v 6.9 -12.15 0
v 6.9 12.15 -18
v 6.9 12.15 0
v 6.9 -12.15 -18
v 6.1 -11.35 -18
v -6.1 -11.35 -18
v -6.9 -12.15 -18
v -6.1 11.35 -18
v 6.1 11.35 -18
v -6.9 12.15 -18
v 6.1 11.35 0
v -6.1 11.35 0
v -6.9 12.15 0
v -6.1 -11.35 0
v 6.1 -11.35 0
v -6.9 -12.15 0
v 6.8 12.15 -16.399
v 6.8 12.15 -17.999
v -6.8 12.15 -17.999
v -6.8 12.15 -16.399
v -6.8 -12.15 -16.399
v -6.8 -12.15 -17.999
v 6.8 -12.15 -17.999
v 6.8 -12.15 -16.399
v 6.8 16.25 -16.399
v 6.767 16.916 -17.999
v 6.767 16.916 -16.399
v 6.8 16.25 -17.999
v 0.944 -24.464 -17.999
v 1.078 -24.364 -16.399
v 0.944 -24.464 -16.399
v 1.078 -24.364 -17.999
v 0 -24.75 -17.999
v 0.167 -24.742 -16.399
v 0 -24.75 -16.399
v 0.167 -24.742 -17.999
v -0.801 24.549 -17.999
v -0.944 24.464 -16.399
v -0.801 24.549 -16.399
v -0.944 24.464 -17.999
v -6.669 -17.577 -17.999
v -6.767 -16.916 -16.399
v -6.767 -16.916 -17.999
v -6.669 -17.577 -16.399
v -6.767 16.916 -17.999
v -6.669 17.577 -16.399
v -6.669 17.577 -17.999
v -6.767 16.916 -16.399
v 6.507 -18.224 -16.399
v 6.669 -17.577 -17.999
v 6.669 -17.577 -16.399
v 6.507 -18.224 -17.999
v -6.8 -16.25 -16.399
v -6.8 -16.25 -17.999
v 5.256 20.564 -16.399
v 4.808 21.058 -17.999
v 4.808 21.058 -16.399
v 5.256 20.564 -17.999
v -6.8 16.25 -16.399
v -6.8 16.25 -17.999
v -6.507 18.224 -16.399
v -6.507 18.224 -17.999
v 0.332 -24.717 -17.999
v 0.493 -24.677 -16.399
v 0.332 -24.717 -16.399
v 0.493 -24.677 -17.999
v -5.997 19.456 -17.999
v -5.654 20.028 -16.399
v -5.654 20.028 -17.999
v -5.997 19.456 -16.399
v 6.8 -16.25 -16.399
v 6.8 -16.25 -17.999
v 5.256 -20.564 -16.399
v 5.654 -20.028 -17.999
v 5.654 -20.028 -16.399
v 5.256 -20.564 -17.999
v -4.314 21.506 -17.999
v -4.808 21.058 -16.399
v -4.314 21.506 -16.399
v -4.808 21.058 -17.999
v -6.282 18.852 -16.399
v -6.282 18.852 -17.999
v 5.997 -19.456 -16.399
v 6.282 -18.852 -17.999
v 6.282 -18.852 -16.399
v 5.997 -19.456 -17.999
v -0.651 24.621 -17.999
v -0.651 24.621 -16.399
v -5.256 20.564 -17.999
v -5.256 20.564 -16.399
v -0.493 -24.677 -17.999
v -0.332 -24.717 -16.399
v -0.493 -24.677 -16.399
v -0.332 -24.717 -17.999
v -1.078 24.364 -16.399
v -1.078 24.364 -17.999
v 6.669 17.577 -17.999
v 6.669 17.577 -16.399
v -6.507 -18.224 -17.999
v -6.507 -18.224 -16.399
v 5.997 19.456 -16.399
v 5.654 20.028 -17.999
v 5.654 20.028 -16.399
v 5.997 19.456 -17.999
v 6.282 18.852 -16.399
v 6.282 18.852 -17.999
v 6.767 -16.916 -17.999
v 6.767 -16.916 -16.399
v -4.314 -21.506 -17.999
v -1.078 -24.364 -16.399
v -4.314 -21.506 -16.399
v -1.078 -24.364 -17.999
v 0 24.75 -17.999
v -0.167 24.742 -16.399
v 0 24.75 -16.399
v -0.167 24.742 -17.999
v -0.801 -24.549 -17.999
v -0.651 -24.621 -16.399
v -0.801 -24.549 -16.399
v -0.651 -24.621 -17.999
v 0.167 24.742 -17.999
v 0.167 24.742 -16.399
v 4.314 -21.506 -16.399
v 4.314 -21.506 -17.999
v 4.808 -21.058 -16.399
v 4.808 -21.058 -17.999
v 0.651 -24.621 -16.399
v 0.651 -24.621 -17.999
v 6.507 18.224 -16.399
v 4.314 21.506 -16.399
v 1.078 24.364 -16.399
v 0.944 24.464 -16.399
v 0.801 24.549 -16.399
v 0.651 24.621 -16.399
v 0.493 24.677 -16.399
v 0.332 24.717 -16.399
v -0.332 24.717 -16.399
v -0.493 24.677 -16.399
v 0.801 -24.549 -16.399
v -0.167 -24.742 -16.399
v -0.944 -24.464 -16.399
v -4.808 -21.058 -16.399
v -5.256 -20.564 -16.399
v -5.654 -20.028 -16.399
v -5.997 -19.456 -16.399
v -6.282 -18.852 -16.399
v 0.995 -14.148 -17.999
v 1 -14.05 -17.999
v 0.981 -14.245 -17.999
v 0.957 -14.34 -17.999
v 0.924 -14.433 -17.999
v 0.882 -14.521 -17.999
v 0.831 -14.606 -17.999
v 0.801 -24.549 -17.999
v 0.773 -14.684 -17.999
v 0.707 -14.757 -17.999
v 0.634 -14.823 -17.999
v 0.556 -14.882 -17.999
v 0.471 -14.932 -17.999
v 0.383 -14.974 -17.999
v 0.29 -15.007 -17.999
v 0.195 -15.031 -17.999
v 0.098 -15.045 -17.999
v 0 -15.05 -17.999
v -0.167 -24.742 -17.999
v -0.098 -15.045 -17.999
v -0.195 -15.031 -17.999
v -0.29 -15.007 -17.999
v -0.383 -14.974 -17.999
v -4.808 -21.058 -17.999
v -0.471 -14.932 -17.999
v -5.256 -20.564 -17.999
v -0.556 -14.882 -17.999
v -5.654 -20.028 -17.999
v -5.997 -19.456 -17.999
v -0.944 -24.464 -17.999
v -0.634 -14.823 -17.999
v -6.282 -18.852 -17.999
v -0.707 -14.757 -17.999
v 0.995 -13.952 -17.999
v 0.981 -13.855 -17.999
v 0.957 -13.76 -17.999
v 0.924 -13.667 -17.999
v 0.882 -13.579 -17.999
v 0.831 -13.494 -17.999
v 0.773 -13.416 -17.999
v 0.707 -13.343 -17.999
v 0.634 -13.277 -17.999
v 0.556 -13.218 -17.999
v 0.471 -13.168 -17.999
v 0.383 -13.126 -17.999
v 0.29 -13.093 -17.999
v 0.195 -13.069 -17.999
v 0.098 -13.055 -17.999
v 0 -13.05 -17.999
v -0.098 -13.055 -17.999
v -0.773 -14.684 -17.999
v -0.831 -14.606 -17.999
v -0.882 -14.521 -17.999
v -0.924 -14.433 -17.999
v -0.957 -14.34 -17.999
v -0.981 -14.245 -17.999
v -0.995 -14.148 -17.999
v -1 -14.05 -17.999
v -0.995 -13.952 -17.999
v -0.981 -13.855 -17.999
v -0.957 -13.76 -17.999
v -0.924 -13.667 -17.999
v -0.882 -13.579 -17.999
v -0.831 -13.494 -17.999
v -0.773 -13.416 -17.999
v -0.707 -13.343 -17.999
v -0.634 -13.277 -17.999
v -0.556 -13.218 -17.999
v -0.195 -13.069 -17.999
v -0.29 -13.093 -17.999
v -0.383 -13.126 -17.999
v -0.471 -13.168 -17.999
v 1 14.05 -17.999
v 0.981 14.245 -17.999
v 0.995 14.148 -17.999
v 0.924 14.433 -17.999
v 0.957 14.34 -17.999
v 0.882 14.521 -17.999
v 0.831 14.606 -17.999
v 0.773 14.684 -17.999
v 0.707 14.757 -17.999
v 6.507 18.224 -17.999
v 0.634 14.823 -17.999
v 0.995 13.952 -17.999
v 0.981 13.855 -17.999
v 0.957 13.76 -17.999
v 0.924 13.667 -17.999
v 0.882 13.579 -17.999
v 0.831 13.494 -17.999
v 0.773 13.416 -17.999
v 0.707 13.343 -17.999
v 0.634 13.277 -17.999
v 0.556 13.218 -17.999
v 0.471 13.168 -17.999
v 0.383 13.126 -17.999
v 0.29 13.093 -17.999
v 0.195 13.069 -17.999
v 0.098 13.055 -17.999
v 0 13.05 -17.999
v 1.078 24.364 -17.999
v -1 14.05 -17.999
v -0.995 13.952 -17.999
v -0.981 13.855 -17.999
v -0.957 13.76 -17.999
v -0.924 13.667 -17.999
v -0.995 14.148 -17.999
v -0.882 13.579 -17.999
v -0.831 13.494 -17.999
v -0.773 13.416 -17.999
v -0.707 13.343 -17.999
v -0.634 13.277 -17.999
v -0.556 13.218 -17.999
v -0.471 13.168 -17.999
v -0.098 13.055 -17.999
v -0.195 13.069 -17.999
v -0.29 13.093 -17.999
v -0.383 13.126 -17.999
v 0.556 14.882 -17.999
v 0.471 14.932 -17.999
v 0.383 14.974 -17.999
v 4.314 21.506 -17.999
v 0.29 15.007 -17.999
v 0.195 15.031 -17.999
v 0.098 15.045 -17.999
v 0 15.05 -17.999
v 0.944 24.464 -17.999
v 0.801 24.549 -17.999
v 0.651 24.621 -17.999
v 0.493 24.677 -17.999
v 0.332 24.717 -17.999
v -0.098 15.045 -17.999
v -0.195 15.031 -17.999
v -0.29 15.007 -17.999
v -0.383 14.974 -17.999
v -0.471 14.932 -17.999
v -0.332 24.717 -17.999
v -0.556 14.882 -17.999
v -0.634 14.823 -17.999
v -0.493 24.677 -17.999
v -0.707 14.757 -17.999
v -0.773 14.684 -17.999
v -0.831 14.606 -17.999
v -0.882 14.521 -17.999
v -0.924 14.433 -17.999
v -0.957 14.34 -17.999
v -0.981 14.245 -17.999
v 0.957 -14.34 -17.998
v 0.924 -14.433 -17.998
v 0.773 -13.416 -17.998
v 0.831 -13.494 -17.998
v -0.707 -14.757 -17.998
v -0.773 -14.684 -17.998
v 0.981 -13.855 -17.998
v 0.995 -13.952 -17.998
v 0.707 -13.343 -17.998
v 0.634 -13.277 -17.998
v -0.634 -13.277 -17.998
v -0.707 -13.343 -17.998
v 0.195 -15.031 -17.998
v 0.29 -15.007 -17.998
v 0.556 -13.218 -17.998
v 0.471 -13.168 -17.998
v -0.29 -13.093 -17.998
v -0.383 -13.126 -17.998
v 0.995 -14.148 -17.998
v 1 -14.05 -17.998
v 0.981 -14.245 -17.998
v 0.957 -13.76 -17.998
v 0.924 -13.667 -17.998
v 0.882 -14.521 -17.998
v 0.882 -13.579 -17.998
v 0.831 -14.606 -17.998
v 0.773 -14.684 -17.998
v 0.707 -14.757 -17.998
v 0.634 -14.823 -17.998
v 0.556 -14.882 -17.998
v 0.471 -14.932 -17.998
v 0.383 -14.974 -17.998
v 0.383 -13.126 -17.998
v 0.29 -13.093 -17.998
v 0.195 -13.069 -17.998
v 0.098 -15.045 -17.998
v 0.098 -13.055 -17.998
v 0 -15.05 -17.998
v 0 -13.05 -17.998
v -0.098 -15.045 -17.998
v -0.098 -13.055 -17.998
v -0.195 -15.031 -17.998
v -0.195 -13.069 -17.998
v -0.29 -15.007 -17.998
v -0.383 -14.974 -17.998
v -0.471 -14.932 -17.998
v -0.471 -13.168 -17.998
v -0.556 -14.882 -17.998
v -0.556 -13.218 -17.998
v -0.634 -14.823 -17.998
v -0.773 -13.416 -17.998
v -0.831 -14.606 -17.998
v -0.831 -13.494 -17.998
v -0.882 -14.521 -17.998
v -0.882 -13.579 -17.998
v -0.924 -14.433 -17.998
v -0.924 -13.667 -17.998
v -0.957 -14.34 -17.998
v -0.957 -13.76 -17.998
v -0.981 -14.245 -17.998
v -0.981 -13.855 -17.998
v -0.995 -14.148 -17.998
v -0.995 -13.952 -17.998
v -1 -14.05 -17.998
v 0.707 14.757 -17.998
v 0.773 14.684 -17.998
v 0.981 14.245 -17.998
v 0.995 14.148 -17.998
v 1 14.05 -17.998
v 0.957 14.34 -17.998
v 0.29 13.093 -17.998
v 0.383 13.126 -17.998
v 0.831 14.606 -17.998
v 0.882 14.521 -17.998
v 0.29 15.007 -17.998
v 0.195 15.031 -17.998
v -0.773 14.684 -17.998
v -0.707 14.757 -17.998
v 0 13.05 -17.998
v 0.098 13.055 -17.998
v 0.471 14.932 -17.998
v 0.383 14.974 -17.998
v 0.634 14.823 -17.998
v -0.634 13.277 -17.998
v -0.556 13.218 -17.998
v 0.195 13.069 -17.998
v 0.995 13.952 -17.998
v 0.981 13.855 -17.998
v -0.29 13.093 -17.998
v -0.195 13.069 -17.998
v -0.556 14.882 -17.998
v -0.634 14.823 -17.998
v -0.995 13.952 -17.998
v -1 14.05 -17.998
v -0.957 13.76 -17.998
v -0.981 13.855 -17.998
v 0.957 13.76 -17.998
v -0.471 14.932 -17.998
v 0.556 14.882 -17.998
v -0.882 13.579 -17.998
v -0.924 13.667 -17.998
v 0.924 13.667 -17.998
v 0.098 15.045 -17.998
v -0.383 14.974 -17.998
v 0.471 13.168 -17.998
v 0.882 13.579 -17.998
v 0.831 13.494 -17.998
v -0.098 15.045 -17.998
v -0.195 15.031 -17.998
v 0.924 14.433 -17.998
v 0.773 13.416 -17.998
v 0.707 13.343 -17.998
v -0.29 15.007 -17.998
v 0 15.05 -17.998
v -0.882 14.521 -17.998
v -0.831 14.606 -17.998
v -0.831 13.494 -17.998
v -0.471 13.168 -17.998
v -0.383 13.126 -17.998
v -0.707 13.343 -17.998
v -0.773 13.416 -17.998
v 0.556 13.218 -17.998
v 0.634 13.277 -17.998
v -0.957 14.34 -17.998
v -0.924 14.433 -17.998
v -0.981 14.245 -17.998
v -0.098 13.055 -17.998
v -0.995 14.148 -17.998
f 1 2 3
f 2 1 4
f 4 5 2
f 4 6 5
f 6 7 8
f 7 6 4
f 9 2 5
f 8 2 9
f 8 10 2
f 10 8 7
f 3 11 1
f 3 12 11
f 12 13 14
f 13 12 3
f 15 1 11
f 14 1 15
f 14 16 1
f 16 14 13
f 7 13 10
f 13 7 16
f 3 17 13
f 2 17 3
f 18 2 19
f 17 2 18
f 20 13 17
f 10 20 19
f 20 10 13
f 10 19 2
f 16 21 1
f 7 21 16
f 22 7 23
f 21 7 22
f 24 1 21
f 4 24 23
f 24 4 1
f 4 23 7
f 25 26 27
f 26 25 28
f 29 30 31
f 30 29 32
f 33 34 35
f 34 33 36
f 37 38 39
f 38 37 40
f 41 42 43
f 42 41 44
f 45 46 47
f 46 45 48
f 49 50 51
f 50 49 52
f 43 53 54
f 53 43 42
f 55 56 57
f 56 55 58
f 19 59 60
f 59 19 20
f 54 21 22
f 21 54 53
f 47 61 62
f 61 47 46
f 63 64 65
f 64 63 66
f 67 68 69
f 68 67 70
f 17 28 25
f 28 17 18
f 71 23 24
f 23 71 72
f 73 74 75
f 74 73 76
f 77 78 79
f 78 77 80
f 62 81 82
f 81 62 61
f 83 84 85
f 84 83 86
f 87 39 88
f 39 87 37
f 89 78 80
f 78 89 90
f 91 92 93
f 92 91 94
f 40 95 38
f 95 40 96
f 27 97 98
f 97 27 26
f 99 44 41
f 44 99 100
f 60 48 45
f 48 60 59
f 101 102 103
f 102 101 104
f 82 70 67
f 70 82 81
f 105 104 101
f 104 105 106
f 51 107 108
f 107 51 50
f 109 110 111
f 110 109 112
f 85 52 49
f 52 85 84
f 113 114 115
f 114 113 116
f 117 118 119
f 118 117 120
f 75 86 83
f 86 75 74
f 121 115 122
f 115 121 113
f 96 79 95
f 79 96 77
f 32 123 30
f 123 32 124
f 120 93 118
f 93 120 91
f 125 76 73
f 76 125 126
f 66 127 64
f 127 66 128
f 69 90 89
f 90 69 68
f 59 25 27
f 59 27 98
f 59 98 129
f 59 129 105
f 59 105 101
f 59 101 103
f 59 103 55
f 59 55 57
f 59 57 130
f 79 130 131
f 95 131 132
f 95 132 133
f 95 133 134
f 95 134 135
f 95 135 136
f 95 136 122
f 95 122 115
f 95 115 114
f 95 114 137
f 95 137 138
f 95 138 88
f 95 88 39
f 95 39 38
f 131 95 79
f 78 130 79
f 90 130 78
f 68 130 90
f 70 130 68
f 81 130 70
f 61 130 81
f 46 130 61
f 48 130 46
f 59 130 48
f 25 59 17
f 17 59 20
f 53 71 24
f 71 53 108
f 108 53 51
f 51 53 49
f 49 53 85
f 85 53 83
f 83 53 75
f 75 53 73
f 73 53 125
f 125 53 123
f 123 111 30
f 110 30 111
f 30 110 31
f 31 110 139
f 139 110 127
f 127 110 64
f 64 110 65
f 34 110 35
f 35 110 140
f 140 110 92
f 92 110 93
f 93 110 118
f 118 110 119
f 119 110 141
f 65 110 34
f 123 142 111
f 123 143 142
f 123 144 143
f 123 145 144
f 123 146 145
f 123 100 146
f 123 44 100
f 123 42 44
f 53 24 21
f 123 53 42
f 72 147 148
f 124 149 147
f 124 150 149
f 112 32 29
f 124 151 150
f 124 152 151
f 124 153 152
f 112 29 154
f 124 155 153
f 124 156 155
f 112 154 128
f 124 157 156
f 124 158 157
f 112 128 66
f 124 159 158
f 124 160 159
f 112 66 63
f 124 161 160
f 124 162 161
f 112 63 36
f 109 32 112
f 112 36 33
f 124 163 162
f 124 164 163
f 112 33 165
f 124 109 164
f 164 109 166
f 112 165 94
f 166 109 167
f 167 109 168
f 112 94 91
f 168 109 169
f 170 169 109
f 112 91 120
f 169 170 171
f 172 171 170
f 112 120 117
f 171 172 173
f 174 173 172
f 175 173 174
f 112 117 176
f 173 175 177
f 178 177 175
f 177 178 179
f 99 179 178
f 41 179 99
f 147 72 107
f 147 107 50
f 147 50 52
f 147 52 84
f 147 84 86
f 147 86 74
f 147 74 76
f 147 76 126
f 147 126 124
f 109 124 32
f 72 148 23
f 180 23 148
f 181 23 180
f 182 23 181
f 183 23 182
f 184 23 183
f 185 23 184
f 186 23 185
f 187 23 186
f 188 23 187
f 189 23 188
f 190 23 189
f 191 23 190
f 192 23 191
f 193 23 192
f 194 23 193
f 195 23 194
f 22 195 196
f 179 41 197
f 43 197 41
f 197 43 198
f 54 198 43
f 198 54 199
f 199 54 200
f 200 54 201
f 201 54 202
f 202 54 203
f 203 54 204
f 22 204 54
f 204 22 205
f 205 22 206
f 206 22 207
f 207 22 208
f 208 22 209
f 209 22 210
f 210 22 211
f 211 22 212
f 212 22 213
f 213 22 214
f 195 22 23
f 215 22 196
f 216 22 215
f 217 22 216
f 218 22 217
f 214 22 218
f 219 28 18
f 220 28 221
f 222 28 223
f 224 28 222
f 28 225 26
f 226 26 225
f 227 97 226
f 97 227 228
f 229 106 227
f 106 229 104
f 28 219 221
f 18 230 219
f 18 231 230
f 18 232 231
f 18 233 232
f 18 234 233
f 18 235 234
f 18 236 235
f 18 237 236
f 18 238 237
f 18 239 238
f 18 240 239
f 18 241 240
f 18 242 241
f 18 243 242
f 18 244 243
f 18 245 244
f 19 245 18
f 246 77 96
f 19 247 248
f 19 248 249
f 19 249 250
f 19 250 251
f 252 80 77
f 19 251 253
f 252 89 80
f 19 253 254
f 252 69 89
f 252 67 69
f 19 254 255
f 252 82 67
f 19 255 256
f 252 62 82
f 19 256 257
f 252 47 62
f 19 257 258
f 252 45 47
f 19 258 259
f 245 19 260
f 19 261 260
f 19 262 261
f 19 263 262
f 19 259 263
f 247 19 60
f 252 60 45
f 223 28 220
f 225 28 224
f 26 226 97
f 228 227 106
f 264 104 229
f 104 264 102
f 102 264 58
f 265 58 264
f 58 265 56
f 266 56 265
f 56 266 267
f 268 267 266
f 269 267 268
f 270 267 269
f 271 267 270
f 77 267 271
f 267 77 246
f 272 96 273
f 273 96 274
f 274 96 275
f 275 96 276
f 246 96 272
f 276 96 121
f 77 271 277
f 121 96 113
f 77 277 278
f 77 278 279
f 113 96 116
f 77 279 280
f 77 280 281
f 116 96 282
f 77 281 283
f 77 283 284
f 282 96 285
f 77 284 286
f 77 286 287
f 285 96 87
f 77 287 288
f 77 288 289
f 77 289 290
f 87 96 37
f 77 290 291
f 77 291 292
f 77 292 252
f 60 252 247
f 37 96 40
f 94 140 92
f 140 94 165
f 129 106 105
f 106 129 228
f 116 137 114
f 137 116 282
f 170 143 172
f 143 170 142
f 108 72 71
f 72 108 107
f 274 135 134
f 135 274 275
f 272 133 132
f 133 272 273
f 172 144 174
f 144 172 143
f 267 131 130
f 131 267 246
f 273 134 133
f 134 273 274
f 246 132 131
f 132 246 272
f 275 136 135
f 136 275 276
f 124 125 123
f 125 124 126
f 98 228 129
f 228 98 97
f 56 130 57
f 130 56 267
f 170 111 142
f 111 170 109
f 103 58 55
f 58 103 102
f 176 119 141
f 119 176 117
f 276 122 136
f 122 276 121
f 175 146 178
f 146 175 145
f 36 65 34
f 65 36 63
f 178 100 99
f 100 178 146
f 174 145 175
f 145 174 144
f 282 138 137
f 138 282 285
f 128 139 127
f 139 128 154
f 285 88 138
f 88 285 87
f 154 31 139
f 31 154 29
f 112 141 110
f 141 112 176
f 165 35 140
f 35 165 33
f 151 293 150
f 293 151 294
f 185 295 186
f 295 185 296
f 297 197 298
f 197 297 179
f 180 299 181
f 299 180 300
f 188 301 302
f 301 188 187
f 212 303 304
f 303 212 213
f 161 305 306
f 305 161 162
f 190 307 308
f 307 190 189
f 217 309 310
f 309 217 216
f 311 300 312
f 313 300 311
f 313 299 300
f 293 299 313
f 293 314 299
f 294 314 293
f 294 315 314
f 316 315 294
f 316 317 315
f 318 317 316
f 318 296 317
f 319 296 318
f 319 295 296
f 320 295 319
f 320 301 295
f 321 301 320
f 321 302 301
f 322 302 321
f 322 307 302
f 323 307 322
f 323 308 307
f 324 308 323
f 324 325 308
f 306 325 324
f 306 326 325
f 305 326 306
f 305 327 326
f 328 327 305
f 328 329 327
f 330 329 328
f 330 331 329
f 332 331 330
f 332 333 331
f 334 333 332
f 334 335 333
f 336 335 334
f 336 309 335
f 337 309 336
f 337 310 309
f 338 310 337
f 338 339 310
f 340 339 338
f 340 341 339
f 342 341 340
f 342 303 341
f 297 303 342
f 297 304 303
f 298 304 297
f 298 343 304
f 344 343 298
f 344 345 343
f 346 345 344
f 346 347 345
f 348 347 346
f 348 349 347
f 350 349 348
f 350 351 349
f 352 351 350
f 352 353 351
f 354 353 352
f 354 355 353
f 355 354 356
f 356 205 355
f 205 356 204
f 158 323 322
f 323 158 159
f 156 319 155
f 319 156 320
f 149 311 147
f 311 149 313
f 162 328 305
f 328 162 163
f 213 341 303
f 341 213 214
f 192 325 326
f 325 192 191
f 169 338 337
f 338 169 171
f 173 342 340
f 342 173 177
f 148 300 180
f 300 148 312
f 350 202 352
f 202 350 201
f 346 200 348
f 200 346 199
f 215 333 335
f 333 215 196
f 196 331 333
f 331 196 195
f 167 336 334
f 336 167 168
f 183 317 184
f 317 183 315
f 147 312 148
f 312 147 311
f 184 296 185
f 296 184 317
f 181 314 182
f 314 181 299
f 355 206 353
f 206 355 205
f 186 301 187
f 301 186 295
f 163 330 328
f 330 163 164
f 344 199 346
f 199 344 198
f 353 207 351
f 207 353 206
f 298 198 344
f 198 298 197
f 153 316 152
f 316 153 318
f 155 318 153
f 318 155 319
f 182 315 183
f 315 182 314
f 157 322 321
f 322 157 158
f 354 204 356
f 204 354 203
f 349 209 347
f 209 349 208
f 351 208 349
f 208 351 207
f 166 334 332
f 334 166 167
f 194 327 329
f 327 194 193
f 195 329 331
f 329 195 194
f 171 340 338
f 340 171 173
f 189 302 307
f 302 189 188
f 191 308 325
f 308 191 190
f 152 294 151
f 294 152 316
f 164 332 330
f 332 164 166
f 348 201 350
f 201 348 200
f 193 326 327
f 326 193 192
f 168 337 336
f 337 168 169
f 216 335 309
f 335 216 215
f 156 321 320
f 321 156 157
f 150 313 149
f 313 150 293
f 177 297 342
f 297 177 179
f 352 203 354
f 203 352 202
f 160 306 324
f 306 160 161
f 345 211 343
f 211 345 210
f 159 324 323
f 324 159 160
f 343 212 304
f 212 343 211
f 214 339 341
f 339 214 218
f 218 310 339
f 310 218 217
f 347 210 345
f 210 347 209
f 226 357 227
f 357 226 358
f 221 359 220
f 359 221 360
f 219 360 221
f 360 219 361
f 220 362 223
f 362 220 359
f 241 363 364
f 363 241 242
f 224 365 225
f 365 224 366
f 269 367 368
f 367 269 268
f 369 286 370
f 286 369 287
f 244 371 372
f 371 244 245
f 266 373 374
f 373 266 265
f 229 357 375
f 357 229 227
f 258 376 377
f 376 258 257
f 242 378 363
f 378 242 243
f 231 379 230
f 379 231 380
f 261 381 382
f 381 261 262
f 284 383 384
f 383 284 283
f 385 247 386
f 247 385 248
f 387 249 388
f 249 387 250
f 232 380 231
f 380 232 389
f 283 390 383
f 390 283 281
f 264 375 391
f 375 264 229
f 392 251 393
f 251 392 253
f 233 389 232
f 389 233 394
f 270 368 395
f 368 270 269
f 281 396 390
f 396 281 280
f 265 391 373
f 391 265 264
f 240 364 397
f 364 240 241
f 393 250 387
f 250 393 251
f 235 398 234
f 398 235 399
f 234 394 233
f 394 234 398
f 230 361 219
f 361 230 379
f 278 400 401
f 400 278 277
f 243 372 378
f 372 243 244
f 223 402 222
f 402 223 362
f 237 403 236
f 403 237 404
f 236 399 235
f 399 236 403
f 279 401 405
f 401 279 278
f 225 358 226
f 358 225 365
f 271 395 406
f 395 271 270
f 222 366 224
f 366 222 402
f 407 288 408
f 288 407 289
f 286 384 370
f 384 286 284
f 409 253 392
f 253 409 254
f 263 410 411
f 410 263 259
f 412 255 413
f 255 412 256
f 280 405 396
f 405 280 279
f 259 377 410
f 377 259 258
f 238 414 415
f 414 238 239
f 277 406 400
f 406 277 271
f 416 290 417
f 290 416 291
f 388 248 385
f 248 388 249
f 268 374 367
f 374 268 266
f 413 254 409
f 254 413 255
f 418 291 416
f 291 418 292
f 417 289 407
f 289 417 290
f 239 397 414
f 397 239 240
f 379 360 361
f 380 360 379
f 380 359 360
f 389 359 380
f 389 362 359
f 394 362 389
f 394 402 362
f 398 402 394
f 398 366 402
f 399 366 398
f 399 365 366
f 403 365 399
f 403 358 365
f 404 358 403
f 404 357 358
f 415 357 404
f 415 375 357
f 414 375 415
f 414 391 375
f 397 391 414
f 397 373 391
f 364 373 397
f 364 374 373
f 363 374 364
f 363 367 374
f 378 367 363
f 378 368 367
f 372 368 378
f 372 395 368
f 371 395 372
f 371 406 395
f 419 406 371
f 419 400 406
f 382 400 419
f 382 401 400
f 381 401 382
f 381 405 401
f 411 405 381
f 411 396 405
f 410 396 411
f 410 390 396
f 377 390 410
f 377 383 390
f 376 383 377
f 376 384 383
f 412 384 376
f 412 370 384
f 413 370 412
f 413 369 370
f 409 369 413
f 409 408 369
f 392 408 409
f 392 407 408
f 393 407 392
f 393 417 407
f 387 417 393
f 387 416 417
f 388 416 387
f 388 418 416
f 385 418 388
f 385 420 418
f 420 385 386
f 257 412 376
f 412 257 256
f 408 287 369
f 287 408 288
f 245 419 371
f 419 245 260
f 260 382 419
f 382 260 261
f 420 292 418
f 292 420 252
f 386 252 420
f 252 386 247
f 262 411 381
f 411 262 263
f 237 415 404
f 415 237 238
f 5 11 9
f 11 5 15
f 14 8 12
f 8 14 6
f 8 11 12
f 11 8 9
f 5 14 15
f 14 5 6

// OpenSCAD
// file: ../servo_data.scad
SERVO_LENGTH = 1;
SERVO_WIDTH = 2;
SERVO_HEIGHT = 3;
SERVO_TAB_LENGTH = 4;
SERVO_TAB_WIDTH = 5;
SERVO_TAB_THICKNESS = 6;
SERVO_TAB_HEIGHT = 7;
SERVO_MOUNTING_HOLE_OFFSET = 8;
SERVO_MOUNTING_HOLE_DIAMETER = 9;
SERVO_BEARING_CASE_DIAMETER = 10;
SERVO_BEARING_CASE_HEIGHT = 11;
SERVO_GEAR_CASE_DIAMETER = 12;
SERVO_SPLINE_OUTER_DIAMETER = 13;
SERVO_SPLINE_HEIGHT = 14;
SERVO_SPLINE_TEETH = 15;
SERVO_SPLINE_SCREW_DIAMETER = 16;
SERVO_WIRE_THICKNESS = 17;
SERVO_WIRE_OFFSET = 18;

SERVOS = 
[["9180MG", 23.5, 12, 21.0, 32.5, 11, 1.7, 16.5, 1.2, 2, 12, 3.8, 6.0,
  3.7, 3.2, 25, 2.0, 1.0, 0],
 ["MG90S", 22.5, 12, 22.5, 32.5, 12, 2.5, 18.0, 1.2, 2, 12, 6.0, 6.0, 4.8,
  4.1, 20, 2.5, 1.2, 4]];

function search_servos(key) = SERVOS[search([key], SERVOS)[0]];
// file: ../globals.scad
$fn = 64;

// The tolerance of your 3d printer that results in a "tight fit" of two parts.
tolerance = 0.1;

// A small value to be used to offset unions and differences to avoid "z-fighting"
epsilon = 0.001;
// file: ../shapes.scad
// The xy_ variants of shape modules are centered with respect to the X/Y axes and "sit" on te XY plane.

module xy_cube(width, depth, height) {
    translate([0, 0, height / 2])
    cube([width, depth, height], center=true);
}

module xy_cylinder(
    h,
    r, r1, r2,
    d, d1, d2)
{
    translate([0, 0, h / 2])
    cylinder(h=h, r=r, r1=r1, r2=r2, d=d, d1=d1, d2=d2, center=true);
}

// Spreads out its children, spacing them along the x/y/z axis by the given amount.
module spread(x, y, z) {
    for(i = [0 : $children -1 ]) {
        translate([i*x, i*y, i*z])
        children(i);
    }
}

spread(15, 0, 0) {
    xy_cube(10, 10, 10);
    xy_cylinder(10, d=10);
}
// file: ../servos.scad
use <mcad/involute_gears.scad>
use <shapes.scad>

include <globals.scad>
include <servo_data.scad>


module servo_body(data) {
    length = data[SERVO_LENGTH];
    width = data[SERVO_WIDTH];
    height = data[SERVO_HEIGHT];
       
    xy_cube(width, length, height);
}

// Translates (and copies) children to the bottom of the two mounting tab holes relative to the tab location.
module servo_mounting_holes_location(data) {
    length = data[SERVO_TAB_LENGTH];
    height = data[SERVO_TAB_THICKNESS];
    
    hole_radius = data[SERVO_MOUNTING_HOLE_DIAMETER] / 2;
    hole_offset = data[SERVO_MOUNTING_HOLE_OFFSET];
    
    hole_position = (length / 2) - (hole_offset + hole_radius);
    
    for(y = [-1, 1]) {
        translate([0, y * hole_position, 0]) {
            xy_cylinder(h=height + (2 * epsilon), r=hole_radius);
            
            translate([0, 0, height - epsilon])
            children();
        }
    }
}

module servo_mounting_holes(data) {    
    translate([0, 0, -epsilon])
    servo_mounting_holes_location(data) {
        xy_cylinder(
            h=data[SERVO_TAB_THICKNESS] + (2 * epsilon),
            d=data[SERVO_MOUNTING_HOLE_DIAMETER]
        );
        children();
    }
}

// Translates the module's children to the location of the servo tab.
module servo_tab_location(data) {
    translate([0, 0, data[SERVO_TAB_HEIGHT]])
    children();
}

module servo_tab(data, mounting_holes=true) {
    length = data[SERVO_TAB_LENGTH];
    width = data[SERVO_TAB_WIDTH];
    thickness = data[SERVO_TAB_THICKNESS];
           
    difference() {
        xy_cube(width, length, thickness);
        if(mounting_holes) {
            servo_mounting_holes(data);
        }
    }
}

// Returns the x, y, z location of the center bottom of the bearing case.
function servo_bearing_case_position(data) = [
    0,
    (data[SERVO_LENGTH] - data[SERVO_BEARING_CASE_DIAMETER]) / 2,
    data[SERVO_HEIGHT] - epsilon
];

// Returns the x, y, z size of the "bearing case" which is at the top of a servo.
function servo_bearing_case_size(data) = [
    data[SERVO_BEARING_CASE_DIAMETER],
    data[SERVO_BEARING_CASE_DIAMETER] + (data[SERVO_GEAR_CASE_DIAMETER] / 2),
    data[SERVO_BEARING_CASE_HEIGHT]
];

module servo_bearing_case_location(data) {
    translate(servo_bearing_case_position(data))
    children();
}

module servo_bearing_case(data) {
    bearing_case_diameter = data[SERVO_BEARING_CASE_DIAMETER];
    bearing_case_height = data[SERVO_BEARING_CASE_HEIGHT];
    gear_case_diameter = data[SERVO_GEAR_CASE_DIAMETER];
    
    xy_cylinder(h = bearing_case_height, r = bearing_case_diameter / 2);
        
    translate([0, -bearing_case_diameter / 2, 0])
    xy_cylinder(h = bearing_case_height, r = gear_case_diameter / 2);
}


// Returns the x, y, z location of the bottom of the spline.
function servo_spline_position(data) = servo_bearing_case_position(data) + [
    0,
    0,
    data[SERVO_BEARING_CASE_HEIGHT] - epsilon
];

module servo_spline_location(data) {
    translate(servo_spline_position(data))
    children();
}

module servo_spline(data) {     
    diameter = data[SERVO_SPLINE_OUTER_DIAMETER];
    height = data[SERVO_SPLINE_HEIGHT];
    teeth = data[SERVO_SPLINE_TEETH];
    
    gear(
        diametral_pitch = teeth / diameter,
        number_of_teeth = teeth,
        gear_thickness = height,
        hub_thickness = height,
        rim_thickness = height,
        bore_diameter = 0,
        clearance = 0,
        pressure_angle=35
    );
}   

module servo(data) {
    echo("Servo Data:", data);
    
    servo_body(data);
    
    servo_tab_location(data)
    servo_tab(data);
    
    servo_bearing_case_location(data)
    servo_bearing_case(data);
    
    servo_spline_location(data)
    servo_spline(data);
}

// Creates a servo horn, with children positioned on the top.  It is designed to print upside down.
module servo_horn(
    data,
    wall_thickness=1,
    shaft_height=undef,
    screwhead_diameter=undef,
) {
    spline_diameter = data[SERVO_SPLINE_OUTER_DIAMETER];
    diameter = spline_diameter + (wall_thickness * 2);
    
    screw_diameter = data[SERVO_SPLINE_SCREW_DIAMETER];
    bore_diameter = screwhead_diameter == undef ? spline_diameter : screwhead_diameter;

    spline_height = data[SERVO_SPLINE_HEIGHT];
    height = shaft_height == undef ? spline_height + wall_thickness: shaft_height;
    
    // 45 degree transition so can print without overhangs.
    transition_height = (bore_diameter - screw_diameter) / 2;
    
    difference() {
        union() {
            xy_cylinder(h=height, d=diameter);
            translate([0, 0, height - epsilon])
            children();
        }
        
        translate([0, 0, -epsilon]) {
            xy_cylinder(h=height + (epsilon*2), d=screw_diameter);
            servo_spline(data);
            
            translate([0, 0, spline_height])
            xy_cylinder(h=transition_height, d1=screw_diameter, d2=bore_diameter);
            
            translate([0, 0, spline_height + transition_height - epsilon])
            xy_cylinder(h=4000, d=bore_diameter);
        }
    }
    
    
}

module servo_demo(servo_name) {
    data = search_servos(servo_name);
    
    servo(data);
    
    servo_spline_location(data) {
        translate([0, 0, 5])
        servo_horn(data) {
            xy_cylinder(d=15, h=1.5);
        }
    }
    
    translate([20, 0, 0])        
    rotate([0, 0, 90])
    text(data[0], halign="center");       
}

servo_demo("9180MG");    
// file: ../fasteners.scad
use <shapes.scad>

include <globals.scad>

// https://www.engineersedge.com/hardware/_metric_socket_head_cap_screws_14054.htm
module xy_cap_bolt(diameter, length) {
    head_diameter = 1.8 * diameter;
	head_height = diameter;
    
    xy_cylinder(d=head_diameter, h=head_height);
    
    translate([0,0,head_height - epsilon])
    xy_cylinder(d=diameter, h=length);
}

xy_cap_bolt(3, 18);
// file: ../cameras.scad
$fn = 64;

wall_thickness = 1.6;
mount_hole_diameter = 2;

// Creates a mounting arm. Height is the height to the mounting hole.
// height: The height to the mounting hole
// width: How far apart should the mount arms be
module mount_arm(
    height,
    width,
    hole_diameter=mount_hole_diameter) {
    
    translate([wall_thickness / -2, 0, 0])
    difference() {
        union() {
            translate([0, width / -2, 0])
            cube([wall_thickness, width, height]);
        
            translate([0, 0, height])
            rotate([0, 90, 0])
            cylinder(h = wall_thickness, r = width / 2);
        }


        translate([-0.1, 0, height])
        rotate([0, 90, 0])
        cylinder(h=wall_thickness + 0.2, r = hole_diameter / 2);
    }    
}

module base_plate(width, depth) {
    x_length = (width + (wall_thickness * 2));
    
    translate([x_length / -2, depth / -2, 0])
    cube([x_length, depth, wall_thickness]);
}

// height: The height from the base to the mounting holes
// width: Width between two mounting arms
// depth: The width of the mounting arms themselves.
module simple_mount(
    height = 9,
    width = 14,
    depth = 10
) {
    x_length = (width + (wall_thickness));
    
    translate([x_length / -2, 0, wall_thickness])
    mount_arm(height, depth);
   
    translate([x_length / 2, 0, wall_thickness])
    mount_arm(height, depth);
    
    base_plate(width, depth);
}

module camera_enclosure(
    height = 14,
    width = 14,
    depth = 14
) {
    
    difference() {
        
        cube([width + (2 * wall_thickness), height + (2 * wall_thickness), depth], center=true);
        
        translate([0, 0, wall_thickness])
        cube([width, height, depth], center=true);
     
        // Hole for wires, fits a Ph3 connector
        translate([0, 0, (depth / -2) - wall_thickness])
        cylinder(h=depth, r=3);
    }
}

module nano_base_plate() {
    base_plate(14, 10);
}

module nano_mount(height=9) {
    simple_mount(
        height = height,
        width = 14,
        depth = 10
    );
}

nano_mount();
// file: mcad/metric_fastners.scad
/*
 *  OpenSCAD Metric Fastners Library (www.openscad.org)
 *  Copyright (C) 2010-2011  Giles Bathgate
 *
 *  This program is free software; you can redistribute it and/or modify
 *  it under the terms of the GNU General Public License as published by
 *  the Free Software Foundation; either version 3 of the License,
 *  LGPL version 2.1, or (at your option) any later version of the GPL.
 *
 *  This program is distributed in the hope that it will be useful,
 *  but WITHOUT ANY WARRANTY; without even the implied warranty of
 *  MERCHANTABILITY or FITNESS FOR A PARTICULAR PURPOSE.  See the
 *  GNU General Public License for more details.
 *
 *  You should have received a copy of the GNU General Public License
 *  along with this program; if not, write to the Free Software
 *  Foundation, Inc., 59 Temple Place, Suite 330, Boston, MA 02111-1307 USA
 *
*/

$fn=50;
apply_chamfer=true;

module cap_bolt(dia,len)
{
	e=1.5*dia;
	h1=1.25*dia;
	cylinder(r=dia/2,h=len);
	translate([0,0,-h1]) cylinder(r=e/2,h=h1);
}

module csk_bolt(dia,len)
{
	h1=0.6*dia;
	h2=len-h1;
	cylinder(r=dia/2,h=h2);
	cylinder(r1=dia,r2=dia/2,h=h1);
}

module washer(dia)
{
	t=0.1*dia;
	difference()
	{
		cylinder(r=dia,h=t);
		translate([0,0,-t/2])cylinder(r=dia/2,h=t*2);
	}
}

module flat_nut(dia)
{
	m=0.8*dia;
	e=1.8*dia;
	c=0.2*dia;
	difference()
	{
		cylinder(r=e/2,h=m,$fn=6);
		translate([0,0,-m/2])cylinder(r=dia/2,h=m*2);
		if(apply_chamfer)
		    translate([0,0,c])cylinder_chamfer(e/2,c);
	}
}

module bolt(dia,len)
{
	e=1.8*dia;
	k=0.7*dia;
	c=0.2*dia;
	difference()
	{
		cylinder(r=e/2,h=k,$fn=6);
		if(apply_chamfer)
		    translate([0,0,c])cylinder_chamfer(e/2,c);
	}

	cylinder(r=dia/2,h=len);

}

module cylinder_chamfer(r1,r2)
{
	t=r1-r2;
	p=r2*2;
	rotate_extrude()
	difference()
	{
		translate([t,-p])square([p,p]);
		translate([t,0])circle(r2);
	}
}

module chamfer(len,r)
{
	p=r*2;
	linear_extrude(height=len)
	difference()
	{
		square([p,p]);
		circle(r);
	}
}

union()
{
//csk_bolt(3,14);
//washer(3);
//flat_nut(3);
//bolt(4,14);
//cylinder_chamfer(8,1);
//chamfer(10,2);
}
// main file
use <micro_pan.scad>
// The servo to use, select one from servo_data.csv
servo_data = search_servos("MG90S");

mirror([0, 0, 1])
servo_mount(servo_data);
